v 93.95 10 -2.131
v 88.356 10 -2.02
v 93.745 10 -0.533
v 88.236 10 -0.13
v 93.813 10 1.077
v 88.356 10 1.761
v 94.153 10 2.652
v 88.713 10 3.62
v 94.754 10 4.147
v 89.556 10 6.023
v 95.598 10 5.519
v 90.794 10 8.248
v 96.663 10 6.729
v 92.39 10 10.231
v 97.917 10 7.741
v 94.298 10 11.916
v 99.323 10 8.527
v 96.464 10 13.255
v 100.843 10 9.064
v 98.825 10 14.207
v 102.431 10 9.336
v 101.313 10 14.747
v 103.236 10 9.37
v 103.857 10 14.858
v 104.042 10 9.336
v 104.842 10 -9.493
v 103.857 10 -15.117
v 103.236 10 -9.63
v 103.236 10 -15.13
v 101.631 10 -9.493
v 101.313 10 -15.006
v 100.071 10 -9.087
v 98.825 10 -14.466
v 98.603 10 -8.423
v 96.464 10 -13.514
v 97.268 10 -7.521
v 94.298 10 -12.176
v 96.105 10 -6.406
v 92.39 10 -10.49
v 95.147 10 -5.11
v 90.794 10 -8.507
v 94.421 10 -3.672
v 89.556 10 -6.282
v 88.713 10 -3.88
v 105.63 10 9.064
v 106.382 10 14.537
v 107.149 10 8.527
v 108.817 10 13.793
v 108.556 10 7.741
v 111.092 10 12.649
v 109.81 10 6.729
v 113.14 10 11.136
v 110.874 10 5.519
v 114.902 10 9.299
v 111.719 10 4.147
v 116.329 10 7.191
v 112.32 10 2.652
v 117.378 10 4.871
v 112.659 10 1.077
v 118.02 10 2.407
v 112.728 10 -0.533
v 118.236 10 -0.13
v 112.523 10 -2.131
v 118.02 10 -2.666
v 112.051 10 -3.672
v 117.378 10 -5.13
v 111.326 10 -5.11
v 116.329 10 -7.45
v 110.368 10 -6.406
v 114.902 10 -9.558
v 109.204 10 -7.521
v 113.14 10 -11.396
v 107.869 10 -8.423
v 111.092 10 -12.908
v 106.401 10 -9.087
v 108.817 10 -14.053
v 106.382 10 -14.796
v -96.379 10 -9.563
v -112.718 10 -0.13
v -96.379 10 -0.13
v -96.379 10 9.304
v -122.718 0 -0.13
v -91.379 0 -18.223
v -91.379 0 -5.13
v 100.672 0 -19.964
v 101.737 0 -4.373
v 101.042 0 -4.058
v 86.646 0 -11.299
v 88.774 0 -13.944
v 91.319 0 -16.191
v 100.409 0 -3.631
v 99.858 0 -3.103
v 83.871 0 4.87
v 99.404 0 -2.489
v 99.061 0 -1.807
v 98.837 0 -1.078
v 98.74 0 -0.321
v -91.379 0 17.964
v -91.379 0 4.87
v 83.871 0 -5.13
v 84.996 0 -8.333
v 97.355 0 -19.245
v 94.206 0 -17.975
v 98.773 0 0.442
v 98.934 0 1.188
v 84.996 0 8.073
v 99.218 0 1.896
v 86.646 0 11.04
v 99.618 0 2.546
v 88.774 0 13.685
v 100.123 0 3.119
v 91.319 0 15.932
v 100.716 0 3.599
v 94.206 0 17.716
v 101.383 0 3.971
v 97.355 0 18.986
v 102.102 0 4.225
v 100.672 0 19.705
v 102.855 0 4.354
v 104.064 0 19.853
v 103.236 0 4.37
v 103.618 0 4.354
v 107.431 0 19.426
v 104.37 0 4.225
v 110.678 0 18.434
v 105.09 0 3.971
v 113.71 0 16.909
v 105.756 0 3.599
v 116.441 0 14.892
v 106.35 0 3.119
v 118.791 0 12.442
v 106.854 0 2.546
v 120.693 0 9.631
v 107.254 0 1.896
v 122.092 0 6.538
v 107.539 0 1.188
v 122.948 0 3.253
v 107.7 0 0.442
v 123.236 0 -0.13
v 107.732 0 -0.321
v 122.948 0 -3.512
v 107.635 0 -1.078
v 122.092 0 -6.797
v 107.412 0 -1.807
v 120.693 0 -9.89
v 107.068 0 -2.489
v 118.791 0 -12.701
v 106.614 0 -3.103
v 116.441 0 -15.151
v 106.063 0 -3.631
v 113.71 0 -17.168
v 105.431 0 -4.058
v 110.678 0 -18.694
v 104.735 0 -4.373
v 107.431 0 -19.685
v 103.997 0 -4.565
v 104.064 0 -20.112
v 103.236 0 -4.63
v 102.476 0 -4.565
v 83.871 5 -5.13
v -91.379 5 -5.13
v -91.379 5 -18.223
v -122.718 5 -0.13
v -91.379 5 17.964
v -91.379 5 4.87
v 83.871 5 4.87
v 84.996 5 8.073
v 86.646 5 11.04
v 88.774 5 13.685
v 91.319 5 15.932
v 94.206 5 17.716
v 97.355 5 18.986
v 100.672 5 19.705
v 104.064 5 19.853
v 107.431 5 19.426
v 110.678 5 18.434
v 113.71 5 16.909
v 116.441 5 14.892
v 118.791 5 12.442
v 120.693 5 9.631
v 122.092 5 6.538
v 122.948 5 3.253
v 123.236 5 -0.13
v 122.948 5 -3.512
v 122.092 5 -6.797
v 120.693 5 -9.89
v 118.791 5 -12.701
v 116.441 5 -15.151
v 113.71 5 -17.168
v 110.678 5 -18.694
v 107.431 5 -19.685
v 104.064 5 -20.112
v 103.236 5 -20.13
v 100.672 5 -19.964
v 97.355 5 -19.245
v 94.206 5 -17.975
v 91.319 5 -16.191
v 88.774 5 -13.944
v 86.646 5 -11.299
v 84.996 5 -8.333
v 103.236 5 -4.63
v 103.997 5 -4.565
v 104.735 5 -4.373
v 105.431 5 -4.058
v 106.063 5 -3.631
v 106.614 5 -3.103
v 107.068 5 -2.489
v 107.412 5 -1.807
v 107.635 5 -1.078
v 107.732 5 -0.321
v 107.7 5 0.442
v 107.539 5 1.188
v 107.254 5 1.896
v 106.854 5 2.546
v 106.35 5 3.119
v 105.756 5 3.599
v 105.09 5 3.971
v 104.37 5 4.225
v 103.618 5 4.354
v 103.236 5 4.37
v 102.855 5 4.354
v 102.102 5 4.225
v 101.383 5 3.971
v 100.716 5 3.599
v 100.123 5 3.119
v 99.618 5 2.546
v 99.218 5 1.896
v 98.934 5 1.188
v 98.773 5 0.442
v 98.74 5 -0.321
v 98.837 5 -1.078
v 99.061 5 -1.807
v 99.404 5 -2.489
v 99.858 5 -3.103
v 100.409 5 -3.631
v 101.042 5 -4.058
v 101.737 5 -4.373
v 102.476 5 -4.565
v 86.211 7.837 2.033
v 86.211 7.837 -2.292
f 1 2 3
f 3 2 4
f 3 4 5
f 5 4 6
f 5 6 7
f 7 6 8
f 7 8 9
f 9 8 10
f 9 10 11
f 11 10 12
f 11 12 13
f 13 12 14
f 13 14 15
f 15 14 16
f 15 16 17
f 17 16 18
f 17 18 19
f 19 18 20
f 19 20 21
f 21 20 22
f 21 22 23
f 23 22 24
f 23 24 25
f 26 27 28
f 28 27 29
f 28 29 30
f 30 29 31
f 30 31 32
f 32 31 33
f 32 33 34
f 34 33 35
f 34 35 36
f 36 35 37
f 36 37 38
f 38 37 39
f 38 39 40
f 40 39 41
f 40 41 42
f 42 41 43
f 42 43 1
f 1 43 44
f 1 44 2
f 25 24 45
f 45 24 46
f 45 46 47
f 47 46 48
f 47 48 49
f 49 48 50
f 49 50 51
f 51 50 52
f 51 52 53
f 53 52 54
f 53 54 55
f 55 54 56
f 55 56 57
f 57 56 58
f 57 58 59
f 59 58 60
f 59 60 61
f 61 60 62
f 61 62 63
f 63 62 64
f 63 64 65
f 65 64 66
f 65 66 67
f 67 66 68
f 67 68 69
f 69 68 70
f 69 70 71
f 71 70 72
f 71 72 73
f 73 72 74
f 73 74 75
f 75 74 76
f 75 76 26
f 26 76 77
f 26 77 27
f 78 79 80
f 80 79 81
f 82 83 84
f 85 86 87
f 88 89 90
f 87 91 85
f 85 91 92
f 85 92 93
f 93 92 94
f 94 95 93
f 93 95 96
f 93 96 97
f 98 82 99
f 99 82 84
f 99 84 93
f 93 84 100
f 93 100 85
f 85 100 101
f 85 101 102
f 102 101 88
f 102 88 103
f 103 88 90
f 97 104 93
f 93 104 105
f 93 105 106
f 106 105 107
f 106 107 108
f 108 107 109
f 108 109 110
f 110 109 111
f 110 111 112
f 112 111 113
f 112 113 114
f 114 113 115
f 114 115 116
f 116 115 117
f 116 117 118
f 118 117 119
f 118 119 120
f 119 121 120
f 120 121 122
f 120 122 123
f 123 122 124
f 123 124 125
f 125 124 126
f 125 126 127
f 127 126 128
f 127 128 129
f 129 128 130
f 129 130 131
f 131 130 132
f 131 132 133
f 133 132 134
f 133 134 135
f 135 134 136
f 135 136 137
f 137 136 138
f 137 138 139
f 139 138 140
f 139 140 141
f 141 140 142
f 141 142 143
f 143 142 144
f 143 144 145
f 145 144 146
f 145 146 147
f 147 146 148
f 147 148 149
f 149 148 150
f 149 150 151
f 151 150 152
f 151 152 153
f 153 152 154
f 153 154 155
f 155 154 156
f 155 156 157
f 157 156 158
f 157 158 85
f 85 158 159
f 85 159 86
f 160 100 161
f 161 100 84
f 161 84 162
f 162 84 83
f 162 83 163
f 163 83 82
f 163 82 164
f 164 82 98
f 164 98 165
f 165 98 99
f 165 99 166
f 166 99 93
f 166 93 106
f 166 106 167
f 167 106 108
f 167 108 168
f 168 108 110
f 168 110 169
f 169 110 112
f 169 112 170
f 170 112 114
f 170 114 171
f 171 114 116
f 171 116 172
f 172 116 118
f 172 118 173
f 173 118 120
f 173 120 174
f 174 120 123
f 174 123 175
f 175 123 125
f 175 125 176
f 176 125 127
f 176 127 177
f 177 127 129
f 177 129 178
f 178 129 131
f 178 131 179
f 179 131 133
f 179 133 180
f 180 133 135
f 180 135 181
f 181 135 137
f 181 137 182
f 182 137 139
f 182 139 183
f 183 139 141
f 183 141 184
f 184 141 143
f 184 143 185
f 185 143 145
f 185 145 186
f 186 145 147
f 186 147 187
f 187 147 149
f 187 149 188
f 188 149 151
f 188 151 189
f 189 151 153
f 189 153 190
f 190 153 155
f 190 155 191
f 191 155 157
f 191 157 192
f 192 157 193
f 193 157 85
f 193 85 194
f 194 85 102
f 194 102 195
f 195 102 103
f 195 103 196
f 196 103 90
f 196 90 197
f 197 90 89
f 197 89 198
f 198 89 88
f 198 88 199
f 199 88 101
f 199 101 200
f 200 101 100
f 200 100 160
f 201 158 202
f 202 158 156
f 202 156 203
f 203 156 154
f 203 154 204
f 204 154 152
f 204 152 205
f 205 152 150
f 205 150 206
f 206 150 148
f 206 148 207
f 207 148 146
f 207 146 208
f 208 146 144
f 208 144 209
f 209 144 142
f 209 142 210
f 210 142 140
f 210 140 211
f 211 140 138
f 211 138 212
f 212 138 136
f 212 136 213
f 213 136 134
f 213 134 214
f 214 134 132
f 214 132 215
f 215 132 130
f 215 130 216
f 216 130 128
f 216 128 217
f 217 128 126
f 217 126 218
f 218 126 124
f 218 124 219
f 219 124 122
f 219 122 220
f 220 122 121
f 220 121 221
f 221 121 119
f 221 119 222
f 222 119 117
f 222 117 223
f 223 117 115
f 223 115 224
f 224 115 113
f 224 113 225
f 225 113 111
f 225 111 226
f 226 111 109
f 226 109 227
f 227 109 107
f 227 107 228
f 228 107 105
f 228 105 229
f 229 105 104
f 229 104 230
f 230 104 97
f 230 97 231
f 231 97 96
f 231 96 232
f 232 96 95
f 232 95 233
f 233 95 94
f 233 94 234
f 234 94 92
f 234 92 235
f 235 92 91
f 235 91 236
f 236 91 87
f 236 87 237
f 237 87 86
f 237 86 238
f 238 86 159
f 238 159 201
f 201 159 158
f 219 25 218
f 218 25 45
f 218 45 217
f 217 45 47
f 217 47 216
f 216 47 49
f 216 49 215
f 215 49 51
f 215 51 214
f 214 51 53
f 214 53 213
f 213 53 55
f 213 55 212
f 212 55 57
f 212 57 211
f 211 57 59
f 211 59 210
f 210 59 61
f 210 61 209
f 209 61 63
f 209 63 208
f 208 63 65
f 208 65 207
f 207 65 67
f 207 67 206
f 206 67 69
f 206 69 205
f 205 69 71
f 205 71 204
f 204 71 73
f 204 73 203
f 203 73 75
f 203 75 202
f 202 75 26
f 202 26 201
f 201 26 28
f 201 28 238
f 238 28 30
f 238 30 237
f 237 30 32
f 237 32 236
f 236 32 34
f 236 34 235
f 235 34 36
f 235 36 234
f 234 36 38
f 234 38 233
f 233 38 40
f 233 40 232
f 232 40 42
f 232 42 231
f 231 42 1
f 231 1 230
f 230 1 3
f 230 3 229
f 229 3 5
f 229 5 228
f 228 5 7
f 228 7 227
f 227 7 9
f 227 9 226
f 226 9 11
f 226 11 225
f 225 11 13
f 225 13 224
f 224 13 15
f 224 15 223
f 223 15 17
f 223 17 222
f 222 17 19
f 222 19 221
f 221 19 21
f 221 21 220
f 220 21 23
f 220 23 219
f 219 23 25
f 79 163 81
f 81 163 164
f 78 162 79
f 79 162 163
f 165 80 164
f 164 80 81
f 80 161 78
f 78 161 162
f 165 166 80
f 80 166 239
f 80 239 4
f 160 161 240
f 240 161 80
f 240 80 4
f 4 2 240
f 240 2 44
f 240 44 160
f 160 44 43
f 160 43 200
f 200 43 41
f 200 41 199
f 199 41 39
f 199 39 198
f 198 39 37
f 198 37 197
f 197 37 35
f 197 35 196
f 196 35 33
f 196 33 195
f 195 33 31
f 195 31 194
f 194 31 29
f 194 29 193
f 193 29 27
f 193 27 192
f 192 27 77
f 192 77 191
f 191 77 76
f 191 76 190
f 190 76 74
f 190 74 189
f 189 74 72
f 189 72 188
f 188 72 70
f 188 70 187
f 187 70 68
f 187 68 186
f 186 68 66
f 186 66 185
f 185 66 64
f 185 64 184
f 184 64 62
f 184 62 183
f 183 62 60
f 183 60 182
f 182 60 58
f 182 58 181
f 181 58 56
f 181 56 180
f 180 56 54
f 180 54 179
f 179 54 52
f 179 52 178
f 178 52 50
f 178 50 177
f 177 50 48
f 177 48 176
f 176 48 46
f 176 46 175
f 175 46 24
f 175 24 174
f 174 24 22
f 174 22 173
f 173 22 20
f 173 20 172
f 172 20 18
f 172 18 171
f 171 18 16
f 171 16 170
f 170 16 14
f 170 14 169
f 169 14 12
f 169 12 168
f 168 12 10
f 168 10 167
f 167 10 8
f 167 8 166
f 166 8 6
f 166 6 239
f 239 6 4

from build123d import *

# Parameters (mm, degrees)
CROQUIS2_R              = 4.5
SALIENTE_EXTRUIR2_DEPTH = 10
CHAFL_N1_SIZE           = 5


with BuildPart() as part:
    # Croquis2 → Saliente-Extruir2 (new body)
    with BuildSketch(Plane(origin=(0, 0, 0), x_dir=(1, 0, 0), z_dir=(0, 1, 0))):
        with BuildLine():
            Line((-91.379241818, 5.129552955), (-91.379241818, 18.223049557))
            Line((-91.379241818, 18.223049557), (-122.718097219, 0.129552955))
            Line((-122.718097219, 0.129552955), (-91.379241818, -17.963943646))
            Line((-91.379241818, -17.963943646), (-91.379241818, -4.870447045))
            Line((-91.379241818, -4.870447045), (83.871392309, -4.870447045))
            ThreePointArc((83.871392309, -4.870447045), (123.23630904, 0.129552955), (83.871392309, 5.129552955))
            Line((83.871392309, 5.129552955), (-91.379241818, 5.129552955))
        make_face()
        with Locations(Location((103.23630904, 0.129552955, 0), (0, 0, 270))):
            Circle(CROQUIS2_R, mode=Mode.SUBTRACT)
    extrude(amount=SALIENTE_EXTRUIR2_DEPTH)

    # Chaflán1
    chafl_n1_edges = [part.edges().sort_by_distance(p)[0] for p in [
        (-107.048669518, 10, -9.176301256),
        (-107.048669518, 10, 8.917195345),
        (103.23630904, 10, -4.629552955),
        (-91.379241818, 10, 11.417195345),
        (-3.753924755, 10, 4.870447045),
        (123.23630904, 10, -0.129552955),
        (-3.753924755, 10, -5.129552955),
        (-91.379241818, 10, -11.676301256),
    ]]
    chamfer(chafl_n1_edges, length=CHAFL_N1_SIZE - 0.0001)  # a hair under: the kernel refuses the full size


solid = part.part
